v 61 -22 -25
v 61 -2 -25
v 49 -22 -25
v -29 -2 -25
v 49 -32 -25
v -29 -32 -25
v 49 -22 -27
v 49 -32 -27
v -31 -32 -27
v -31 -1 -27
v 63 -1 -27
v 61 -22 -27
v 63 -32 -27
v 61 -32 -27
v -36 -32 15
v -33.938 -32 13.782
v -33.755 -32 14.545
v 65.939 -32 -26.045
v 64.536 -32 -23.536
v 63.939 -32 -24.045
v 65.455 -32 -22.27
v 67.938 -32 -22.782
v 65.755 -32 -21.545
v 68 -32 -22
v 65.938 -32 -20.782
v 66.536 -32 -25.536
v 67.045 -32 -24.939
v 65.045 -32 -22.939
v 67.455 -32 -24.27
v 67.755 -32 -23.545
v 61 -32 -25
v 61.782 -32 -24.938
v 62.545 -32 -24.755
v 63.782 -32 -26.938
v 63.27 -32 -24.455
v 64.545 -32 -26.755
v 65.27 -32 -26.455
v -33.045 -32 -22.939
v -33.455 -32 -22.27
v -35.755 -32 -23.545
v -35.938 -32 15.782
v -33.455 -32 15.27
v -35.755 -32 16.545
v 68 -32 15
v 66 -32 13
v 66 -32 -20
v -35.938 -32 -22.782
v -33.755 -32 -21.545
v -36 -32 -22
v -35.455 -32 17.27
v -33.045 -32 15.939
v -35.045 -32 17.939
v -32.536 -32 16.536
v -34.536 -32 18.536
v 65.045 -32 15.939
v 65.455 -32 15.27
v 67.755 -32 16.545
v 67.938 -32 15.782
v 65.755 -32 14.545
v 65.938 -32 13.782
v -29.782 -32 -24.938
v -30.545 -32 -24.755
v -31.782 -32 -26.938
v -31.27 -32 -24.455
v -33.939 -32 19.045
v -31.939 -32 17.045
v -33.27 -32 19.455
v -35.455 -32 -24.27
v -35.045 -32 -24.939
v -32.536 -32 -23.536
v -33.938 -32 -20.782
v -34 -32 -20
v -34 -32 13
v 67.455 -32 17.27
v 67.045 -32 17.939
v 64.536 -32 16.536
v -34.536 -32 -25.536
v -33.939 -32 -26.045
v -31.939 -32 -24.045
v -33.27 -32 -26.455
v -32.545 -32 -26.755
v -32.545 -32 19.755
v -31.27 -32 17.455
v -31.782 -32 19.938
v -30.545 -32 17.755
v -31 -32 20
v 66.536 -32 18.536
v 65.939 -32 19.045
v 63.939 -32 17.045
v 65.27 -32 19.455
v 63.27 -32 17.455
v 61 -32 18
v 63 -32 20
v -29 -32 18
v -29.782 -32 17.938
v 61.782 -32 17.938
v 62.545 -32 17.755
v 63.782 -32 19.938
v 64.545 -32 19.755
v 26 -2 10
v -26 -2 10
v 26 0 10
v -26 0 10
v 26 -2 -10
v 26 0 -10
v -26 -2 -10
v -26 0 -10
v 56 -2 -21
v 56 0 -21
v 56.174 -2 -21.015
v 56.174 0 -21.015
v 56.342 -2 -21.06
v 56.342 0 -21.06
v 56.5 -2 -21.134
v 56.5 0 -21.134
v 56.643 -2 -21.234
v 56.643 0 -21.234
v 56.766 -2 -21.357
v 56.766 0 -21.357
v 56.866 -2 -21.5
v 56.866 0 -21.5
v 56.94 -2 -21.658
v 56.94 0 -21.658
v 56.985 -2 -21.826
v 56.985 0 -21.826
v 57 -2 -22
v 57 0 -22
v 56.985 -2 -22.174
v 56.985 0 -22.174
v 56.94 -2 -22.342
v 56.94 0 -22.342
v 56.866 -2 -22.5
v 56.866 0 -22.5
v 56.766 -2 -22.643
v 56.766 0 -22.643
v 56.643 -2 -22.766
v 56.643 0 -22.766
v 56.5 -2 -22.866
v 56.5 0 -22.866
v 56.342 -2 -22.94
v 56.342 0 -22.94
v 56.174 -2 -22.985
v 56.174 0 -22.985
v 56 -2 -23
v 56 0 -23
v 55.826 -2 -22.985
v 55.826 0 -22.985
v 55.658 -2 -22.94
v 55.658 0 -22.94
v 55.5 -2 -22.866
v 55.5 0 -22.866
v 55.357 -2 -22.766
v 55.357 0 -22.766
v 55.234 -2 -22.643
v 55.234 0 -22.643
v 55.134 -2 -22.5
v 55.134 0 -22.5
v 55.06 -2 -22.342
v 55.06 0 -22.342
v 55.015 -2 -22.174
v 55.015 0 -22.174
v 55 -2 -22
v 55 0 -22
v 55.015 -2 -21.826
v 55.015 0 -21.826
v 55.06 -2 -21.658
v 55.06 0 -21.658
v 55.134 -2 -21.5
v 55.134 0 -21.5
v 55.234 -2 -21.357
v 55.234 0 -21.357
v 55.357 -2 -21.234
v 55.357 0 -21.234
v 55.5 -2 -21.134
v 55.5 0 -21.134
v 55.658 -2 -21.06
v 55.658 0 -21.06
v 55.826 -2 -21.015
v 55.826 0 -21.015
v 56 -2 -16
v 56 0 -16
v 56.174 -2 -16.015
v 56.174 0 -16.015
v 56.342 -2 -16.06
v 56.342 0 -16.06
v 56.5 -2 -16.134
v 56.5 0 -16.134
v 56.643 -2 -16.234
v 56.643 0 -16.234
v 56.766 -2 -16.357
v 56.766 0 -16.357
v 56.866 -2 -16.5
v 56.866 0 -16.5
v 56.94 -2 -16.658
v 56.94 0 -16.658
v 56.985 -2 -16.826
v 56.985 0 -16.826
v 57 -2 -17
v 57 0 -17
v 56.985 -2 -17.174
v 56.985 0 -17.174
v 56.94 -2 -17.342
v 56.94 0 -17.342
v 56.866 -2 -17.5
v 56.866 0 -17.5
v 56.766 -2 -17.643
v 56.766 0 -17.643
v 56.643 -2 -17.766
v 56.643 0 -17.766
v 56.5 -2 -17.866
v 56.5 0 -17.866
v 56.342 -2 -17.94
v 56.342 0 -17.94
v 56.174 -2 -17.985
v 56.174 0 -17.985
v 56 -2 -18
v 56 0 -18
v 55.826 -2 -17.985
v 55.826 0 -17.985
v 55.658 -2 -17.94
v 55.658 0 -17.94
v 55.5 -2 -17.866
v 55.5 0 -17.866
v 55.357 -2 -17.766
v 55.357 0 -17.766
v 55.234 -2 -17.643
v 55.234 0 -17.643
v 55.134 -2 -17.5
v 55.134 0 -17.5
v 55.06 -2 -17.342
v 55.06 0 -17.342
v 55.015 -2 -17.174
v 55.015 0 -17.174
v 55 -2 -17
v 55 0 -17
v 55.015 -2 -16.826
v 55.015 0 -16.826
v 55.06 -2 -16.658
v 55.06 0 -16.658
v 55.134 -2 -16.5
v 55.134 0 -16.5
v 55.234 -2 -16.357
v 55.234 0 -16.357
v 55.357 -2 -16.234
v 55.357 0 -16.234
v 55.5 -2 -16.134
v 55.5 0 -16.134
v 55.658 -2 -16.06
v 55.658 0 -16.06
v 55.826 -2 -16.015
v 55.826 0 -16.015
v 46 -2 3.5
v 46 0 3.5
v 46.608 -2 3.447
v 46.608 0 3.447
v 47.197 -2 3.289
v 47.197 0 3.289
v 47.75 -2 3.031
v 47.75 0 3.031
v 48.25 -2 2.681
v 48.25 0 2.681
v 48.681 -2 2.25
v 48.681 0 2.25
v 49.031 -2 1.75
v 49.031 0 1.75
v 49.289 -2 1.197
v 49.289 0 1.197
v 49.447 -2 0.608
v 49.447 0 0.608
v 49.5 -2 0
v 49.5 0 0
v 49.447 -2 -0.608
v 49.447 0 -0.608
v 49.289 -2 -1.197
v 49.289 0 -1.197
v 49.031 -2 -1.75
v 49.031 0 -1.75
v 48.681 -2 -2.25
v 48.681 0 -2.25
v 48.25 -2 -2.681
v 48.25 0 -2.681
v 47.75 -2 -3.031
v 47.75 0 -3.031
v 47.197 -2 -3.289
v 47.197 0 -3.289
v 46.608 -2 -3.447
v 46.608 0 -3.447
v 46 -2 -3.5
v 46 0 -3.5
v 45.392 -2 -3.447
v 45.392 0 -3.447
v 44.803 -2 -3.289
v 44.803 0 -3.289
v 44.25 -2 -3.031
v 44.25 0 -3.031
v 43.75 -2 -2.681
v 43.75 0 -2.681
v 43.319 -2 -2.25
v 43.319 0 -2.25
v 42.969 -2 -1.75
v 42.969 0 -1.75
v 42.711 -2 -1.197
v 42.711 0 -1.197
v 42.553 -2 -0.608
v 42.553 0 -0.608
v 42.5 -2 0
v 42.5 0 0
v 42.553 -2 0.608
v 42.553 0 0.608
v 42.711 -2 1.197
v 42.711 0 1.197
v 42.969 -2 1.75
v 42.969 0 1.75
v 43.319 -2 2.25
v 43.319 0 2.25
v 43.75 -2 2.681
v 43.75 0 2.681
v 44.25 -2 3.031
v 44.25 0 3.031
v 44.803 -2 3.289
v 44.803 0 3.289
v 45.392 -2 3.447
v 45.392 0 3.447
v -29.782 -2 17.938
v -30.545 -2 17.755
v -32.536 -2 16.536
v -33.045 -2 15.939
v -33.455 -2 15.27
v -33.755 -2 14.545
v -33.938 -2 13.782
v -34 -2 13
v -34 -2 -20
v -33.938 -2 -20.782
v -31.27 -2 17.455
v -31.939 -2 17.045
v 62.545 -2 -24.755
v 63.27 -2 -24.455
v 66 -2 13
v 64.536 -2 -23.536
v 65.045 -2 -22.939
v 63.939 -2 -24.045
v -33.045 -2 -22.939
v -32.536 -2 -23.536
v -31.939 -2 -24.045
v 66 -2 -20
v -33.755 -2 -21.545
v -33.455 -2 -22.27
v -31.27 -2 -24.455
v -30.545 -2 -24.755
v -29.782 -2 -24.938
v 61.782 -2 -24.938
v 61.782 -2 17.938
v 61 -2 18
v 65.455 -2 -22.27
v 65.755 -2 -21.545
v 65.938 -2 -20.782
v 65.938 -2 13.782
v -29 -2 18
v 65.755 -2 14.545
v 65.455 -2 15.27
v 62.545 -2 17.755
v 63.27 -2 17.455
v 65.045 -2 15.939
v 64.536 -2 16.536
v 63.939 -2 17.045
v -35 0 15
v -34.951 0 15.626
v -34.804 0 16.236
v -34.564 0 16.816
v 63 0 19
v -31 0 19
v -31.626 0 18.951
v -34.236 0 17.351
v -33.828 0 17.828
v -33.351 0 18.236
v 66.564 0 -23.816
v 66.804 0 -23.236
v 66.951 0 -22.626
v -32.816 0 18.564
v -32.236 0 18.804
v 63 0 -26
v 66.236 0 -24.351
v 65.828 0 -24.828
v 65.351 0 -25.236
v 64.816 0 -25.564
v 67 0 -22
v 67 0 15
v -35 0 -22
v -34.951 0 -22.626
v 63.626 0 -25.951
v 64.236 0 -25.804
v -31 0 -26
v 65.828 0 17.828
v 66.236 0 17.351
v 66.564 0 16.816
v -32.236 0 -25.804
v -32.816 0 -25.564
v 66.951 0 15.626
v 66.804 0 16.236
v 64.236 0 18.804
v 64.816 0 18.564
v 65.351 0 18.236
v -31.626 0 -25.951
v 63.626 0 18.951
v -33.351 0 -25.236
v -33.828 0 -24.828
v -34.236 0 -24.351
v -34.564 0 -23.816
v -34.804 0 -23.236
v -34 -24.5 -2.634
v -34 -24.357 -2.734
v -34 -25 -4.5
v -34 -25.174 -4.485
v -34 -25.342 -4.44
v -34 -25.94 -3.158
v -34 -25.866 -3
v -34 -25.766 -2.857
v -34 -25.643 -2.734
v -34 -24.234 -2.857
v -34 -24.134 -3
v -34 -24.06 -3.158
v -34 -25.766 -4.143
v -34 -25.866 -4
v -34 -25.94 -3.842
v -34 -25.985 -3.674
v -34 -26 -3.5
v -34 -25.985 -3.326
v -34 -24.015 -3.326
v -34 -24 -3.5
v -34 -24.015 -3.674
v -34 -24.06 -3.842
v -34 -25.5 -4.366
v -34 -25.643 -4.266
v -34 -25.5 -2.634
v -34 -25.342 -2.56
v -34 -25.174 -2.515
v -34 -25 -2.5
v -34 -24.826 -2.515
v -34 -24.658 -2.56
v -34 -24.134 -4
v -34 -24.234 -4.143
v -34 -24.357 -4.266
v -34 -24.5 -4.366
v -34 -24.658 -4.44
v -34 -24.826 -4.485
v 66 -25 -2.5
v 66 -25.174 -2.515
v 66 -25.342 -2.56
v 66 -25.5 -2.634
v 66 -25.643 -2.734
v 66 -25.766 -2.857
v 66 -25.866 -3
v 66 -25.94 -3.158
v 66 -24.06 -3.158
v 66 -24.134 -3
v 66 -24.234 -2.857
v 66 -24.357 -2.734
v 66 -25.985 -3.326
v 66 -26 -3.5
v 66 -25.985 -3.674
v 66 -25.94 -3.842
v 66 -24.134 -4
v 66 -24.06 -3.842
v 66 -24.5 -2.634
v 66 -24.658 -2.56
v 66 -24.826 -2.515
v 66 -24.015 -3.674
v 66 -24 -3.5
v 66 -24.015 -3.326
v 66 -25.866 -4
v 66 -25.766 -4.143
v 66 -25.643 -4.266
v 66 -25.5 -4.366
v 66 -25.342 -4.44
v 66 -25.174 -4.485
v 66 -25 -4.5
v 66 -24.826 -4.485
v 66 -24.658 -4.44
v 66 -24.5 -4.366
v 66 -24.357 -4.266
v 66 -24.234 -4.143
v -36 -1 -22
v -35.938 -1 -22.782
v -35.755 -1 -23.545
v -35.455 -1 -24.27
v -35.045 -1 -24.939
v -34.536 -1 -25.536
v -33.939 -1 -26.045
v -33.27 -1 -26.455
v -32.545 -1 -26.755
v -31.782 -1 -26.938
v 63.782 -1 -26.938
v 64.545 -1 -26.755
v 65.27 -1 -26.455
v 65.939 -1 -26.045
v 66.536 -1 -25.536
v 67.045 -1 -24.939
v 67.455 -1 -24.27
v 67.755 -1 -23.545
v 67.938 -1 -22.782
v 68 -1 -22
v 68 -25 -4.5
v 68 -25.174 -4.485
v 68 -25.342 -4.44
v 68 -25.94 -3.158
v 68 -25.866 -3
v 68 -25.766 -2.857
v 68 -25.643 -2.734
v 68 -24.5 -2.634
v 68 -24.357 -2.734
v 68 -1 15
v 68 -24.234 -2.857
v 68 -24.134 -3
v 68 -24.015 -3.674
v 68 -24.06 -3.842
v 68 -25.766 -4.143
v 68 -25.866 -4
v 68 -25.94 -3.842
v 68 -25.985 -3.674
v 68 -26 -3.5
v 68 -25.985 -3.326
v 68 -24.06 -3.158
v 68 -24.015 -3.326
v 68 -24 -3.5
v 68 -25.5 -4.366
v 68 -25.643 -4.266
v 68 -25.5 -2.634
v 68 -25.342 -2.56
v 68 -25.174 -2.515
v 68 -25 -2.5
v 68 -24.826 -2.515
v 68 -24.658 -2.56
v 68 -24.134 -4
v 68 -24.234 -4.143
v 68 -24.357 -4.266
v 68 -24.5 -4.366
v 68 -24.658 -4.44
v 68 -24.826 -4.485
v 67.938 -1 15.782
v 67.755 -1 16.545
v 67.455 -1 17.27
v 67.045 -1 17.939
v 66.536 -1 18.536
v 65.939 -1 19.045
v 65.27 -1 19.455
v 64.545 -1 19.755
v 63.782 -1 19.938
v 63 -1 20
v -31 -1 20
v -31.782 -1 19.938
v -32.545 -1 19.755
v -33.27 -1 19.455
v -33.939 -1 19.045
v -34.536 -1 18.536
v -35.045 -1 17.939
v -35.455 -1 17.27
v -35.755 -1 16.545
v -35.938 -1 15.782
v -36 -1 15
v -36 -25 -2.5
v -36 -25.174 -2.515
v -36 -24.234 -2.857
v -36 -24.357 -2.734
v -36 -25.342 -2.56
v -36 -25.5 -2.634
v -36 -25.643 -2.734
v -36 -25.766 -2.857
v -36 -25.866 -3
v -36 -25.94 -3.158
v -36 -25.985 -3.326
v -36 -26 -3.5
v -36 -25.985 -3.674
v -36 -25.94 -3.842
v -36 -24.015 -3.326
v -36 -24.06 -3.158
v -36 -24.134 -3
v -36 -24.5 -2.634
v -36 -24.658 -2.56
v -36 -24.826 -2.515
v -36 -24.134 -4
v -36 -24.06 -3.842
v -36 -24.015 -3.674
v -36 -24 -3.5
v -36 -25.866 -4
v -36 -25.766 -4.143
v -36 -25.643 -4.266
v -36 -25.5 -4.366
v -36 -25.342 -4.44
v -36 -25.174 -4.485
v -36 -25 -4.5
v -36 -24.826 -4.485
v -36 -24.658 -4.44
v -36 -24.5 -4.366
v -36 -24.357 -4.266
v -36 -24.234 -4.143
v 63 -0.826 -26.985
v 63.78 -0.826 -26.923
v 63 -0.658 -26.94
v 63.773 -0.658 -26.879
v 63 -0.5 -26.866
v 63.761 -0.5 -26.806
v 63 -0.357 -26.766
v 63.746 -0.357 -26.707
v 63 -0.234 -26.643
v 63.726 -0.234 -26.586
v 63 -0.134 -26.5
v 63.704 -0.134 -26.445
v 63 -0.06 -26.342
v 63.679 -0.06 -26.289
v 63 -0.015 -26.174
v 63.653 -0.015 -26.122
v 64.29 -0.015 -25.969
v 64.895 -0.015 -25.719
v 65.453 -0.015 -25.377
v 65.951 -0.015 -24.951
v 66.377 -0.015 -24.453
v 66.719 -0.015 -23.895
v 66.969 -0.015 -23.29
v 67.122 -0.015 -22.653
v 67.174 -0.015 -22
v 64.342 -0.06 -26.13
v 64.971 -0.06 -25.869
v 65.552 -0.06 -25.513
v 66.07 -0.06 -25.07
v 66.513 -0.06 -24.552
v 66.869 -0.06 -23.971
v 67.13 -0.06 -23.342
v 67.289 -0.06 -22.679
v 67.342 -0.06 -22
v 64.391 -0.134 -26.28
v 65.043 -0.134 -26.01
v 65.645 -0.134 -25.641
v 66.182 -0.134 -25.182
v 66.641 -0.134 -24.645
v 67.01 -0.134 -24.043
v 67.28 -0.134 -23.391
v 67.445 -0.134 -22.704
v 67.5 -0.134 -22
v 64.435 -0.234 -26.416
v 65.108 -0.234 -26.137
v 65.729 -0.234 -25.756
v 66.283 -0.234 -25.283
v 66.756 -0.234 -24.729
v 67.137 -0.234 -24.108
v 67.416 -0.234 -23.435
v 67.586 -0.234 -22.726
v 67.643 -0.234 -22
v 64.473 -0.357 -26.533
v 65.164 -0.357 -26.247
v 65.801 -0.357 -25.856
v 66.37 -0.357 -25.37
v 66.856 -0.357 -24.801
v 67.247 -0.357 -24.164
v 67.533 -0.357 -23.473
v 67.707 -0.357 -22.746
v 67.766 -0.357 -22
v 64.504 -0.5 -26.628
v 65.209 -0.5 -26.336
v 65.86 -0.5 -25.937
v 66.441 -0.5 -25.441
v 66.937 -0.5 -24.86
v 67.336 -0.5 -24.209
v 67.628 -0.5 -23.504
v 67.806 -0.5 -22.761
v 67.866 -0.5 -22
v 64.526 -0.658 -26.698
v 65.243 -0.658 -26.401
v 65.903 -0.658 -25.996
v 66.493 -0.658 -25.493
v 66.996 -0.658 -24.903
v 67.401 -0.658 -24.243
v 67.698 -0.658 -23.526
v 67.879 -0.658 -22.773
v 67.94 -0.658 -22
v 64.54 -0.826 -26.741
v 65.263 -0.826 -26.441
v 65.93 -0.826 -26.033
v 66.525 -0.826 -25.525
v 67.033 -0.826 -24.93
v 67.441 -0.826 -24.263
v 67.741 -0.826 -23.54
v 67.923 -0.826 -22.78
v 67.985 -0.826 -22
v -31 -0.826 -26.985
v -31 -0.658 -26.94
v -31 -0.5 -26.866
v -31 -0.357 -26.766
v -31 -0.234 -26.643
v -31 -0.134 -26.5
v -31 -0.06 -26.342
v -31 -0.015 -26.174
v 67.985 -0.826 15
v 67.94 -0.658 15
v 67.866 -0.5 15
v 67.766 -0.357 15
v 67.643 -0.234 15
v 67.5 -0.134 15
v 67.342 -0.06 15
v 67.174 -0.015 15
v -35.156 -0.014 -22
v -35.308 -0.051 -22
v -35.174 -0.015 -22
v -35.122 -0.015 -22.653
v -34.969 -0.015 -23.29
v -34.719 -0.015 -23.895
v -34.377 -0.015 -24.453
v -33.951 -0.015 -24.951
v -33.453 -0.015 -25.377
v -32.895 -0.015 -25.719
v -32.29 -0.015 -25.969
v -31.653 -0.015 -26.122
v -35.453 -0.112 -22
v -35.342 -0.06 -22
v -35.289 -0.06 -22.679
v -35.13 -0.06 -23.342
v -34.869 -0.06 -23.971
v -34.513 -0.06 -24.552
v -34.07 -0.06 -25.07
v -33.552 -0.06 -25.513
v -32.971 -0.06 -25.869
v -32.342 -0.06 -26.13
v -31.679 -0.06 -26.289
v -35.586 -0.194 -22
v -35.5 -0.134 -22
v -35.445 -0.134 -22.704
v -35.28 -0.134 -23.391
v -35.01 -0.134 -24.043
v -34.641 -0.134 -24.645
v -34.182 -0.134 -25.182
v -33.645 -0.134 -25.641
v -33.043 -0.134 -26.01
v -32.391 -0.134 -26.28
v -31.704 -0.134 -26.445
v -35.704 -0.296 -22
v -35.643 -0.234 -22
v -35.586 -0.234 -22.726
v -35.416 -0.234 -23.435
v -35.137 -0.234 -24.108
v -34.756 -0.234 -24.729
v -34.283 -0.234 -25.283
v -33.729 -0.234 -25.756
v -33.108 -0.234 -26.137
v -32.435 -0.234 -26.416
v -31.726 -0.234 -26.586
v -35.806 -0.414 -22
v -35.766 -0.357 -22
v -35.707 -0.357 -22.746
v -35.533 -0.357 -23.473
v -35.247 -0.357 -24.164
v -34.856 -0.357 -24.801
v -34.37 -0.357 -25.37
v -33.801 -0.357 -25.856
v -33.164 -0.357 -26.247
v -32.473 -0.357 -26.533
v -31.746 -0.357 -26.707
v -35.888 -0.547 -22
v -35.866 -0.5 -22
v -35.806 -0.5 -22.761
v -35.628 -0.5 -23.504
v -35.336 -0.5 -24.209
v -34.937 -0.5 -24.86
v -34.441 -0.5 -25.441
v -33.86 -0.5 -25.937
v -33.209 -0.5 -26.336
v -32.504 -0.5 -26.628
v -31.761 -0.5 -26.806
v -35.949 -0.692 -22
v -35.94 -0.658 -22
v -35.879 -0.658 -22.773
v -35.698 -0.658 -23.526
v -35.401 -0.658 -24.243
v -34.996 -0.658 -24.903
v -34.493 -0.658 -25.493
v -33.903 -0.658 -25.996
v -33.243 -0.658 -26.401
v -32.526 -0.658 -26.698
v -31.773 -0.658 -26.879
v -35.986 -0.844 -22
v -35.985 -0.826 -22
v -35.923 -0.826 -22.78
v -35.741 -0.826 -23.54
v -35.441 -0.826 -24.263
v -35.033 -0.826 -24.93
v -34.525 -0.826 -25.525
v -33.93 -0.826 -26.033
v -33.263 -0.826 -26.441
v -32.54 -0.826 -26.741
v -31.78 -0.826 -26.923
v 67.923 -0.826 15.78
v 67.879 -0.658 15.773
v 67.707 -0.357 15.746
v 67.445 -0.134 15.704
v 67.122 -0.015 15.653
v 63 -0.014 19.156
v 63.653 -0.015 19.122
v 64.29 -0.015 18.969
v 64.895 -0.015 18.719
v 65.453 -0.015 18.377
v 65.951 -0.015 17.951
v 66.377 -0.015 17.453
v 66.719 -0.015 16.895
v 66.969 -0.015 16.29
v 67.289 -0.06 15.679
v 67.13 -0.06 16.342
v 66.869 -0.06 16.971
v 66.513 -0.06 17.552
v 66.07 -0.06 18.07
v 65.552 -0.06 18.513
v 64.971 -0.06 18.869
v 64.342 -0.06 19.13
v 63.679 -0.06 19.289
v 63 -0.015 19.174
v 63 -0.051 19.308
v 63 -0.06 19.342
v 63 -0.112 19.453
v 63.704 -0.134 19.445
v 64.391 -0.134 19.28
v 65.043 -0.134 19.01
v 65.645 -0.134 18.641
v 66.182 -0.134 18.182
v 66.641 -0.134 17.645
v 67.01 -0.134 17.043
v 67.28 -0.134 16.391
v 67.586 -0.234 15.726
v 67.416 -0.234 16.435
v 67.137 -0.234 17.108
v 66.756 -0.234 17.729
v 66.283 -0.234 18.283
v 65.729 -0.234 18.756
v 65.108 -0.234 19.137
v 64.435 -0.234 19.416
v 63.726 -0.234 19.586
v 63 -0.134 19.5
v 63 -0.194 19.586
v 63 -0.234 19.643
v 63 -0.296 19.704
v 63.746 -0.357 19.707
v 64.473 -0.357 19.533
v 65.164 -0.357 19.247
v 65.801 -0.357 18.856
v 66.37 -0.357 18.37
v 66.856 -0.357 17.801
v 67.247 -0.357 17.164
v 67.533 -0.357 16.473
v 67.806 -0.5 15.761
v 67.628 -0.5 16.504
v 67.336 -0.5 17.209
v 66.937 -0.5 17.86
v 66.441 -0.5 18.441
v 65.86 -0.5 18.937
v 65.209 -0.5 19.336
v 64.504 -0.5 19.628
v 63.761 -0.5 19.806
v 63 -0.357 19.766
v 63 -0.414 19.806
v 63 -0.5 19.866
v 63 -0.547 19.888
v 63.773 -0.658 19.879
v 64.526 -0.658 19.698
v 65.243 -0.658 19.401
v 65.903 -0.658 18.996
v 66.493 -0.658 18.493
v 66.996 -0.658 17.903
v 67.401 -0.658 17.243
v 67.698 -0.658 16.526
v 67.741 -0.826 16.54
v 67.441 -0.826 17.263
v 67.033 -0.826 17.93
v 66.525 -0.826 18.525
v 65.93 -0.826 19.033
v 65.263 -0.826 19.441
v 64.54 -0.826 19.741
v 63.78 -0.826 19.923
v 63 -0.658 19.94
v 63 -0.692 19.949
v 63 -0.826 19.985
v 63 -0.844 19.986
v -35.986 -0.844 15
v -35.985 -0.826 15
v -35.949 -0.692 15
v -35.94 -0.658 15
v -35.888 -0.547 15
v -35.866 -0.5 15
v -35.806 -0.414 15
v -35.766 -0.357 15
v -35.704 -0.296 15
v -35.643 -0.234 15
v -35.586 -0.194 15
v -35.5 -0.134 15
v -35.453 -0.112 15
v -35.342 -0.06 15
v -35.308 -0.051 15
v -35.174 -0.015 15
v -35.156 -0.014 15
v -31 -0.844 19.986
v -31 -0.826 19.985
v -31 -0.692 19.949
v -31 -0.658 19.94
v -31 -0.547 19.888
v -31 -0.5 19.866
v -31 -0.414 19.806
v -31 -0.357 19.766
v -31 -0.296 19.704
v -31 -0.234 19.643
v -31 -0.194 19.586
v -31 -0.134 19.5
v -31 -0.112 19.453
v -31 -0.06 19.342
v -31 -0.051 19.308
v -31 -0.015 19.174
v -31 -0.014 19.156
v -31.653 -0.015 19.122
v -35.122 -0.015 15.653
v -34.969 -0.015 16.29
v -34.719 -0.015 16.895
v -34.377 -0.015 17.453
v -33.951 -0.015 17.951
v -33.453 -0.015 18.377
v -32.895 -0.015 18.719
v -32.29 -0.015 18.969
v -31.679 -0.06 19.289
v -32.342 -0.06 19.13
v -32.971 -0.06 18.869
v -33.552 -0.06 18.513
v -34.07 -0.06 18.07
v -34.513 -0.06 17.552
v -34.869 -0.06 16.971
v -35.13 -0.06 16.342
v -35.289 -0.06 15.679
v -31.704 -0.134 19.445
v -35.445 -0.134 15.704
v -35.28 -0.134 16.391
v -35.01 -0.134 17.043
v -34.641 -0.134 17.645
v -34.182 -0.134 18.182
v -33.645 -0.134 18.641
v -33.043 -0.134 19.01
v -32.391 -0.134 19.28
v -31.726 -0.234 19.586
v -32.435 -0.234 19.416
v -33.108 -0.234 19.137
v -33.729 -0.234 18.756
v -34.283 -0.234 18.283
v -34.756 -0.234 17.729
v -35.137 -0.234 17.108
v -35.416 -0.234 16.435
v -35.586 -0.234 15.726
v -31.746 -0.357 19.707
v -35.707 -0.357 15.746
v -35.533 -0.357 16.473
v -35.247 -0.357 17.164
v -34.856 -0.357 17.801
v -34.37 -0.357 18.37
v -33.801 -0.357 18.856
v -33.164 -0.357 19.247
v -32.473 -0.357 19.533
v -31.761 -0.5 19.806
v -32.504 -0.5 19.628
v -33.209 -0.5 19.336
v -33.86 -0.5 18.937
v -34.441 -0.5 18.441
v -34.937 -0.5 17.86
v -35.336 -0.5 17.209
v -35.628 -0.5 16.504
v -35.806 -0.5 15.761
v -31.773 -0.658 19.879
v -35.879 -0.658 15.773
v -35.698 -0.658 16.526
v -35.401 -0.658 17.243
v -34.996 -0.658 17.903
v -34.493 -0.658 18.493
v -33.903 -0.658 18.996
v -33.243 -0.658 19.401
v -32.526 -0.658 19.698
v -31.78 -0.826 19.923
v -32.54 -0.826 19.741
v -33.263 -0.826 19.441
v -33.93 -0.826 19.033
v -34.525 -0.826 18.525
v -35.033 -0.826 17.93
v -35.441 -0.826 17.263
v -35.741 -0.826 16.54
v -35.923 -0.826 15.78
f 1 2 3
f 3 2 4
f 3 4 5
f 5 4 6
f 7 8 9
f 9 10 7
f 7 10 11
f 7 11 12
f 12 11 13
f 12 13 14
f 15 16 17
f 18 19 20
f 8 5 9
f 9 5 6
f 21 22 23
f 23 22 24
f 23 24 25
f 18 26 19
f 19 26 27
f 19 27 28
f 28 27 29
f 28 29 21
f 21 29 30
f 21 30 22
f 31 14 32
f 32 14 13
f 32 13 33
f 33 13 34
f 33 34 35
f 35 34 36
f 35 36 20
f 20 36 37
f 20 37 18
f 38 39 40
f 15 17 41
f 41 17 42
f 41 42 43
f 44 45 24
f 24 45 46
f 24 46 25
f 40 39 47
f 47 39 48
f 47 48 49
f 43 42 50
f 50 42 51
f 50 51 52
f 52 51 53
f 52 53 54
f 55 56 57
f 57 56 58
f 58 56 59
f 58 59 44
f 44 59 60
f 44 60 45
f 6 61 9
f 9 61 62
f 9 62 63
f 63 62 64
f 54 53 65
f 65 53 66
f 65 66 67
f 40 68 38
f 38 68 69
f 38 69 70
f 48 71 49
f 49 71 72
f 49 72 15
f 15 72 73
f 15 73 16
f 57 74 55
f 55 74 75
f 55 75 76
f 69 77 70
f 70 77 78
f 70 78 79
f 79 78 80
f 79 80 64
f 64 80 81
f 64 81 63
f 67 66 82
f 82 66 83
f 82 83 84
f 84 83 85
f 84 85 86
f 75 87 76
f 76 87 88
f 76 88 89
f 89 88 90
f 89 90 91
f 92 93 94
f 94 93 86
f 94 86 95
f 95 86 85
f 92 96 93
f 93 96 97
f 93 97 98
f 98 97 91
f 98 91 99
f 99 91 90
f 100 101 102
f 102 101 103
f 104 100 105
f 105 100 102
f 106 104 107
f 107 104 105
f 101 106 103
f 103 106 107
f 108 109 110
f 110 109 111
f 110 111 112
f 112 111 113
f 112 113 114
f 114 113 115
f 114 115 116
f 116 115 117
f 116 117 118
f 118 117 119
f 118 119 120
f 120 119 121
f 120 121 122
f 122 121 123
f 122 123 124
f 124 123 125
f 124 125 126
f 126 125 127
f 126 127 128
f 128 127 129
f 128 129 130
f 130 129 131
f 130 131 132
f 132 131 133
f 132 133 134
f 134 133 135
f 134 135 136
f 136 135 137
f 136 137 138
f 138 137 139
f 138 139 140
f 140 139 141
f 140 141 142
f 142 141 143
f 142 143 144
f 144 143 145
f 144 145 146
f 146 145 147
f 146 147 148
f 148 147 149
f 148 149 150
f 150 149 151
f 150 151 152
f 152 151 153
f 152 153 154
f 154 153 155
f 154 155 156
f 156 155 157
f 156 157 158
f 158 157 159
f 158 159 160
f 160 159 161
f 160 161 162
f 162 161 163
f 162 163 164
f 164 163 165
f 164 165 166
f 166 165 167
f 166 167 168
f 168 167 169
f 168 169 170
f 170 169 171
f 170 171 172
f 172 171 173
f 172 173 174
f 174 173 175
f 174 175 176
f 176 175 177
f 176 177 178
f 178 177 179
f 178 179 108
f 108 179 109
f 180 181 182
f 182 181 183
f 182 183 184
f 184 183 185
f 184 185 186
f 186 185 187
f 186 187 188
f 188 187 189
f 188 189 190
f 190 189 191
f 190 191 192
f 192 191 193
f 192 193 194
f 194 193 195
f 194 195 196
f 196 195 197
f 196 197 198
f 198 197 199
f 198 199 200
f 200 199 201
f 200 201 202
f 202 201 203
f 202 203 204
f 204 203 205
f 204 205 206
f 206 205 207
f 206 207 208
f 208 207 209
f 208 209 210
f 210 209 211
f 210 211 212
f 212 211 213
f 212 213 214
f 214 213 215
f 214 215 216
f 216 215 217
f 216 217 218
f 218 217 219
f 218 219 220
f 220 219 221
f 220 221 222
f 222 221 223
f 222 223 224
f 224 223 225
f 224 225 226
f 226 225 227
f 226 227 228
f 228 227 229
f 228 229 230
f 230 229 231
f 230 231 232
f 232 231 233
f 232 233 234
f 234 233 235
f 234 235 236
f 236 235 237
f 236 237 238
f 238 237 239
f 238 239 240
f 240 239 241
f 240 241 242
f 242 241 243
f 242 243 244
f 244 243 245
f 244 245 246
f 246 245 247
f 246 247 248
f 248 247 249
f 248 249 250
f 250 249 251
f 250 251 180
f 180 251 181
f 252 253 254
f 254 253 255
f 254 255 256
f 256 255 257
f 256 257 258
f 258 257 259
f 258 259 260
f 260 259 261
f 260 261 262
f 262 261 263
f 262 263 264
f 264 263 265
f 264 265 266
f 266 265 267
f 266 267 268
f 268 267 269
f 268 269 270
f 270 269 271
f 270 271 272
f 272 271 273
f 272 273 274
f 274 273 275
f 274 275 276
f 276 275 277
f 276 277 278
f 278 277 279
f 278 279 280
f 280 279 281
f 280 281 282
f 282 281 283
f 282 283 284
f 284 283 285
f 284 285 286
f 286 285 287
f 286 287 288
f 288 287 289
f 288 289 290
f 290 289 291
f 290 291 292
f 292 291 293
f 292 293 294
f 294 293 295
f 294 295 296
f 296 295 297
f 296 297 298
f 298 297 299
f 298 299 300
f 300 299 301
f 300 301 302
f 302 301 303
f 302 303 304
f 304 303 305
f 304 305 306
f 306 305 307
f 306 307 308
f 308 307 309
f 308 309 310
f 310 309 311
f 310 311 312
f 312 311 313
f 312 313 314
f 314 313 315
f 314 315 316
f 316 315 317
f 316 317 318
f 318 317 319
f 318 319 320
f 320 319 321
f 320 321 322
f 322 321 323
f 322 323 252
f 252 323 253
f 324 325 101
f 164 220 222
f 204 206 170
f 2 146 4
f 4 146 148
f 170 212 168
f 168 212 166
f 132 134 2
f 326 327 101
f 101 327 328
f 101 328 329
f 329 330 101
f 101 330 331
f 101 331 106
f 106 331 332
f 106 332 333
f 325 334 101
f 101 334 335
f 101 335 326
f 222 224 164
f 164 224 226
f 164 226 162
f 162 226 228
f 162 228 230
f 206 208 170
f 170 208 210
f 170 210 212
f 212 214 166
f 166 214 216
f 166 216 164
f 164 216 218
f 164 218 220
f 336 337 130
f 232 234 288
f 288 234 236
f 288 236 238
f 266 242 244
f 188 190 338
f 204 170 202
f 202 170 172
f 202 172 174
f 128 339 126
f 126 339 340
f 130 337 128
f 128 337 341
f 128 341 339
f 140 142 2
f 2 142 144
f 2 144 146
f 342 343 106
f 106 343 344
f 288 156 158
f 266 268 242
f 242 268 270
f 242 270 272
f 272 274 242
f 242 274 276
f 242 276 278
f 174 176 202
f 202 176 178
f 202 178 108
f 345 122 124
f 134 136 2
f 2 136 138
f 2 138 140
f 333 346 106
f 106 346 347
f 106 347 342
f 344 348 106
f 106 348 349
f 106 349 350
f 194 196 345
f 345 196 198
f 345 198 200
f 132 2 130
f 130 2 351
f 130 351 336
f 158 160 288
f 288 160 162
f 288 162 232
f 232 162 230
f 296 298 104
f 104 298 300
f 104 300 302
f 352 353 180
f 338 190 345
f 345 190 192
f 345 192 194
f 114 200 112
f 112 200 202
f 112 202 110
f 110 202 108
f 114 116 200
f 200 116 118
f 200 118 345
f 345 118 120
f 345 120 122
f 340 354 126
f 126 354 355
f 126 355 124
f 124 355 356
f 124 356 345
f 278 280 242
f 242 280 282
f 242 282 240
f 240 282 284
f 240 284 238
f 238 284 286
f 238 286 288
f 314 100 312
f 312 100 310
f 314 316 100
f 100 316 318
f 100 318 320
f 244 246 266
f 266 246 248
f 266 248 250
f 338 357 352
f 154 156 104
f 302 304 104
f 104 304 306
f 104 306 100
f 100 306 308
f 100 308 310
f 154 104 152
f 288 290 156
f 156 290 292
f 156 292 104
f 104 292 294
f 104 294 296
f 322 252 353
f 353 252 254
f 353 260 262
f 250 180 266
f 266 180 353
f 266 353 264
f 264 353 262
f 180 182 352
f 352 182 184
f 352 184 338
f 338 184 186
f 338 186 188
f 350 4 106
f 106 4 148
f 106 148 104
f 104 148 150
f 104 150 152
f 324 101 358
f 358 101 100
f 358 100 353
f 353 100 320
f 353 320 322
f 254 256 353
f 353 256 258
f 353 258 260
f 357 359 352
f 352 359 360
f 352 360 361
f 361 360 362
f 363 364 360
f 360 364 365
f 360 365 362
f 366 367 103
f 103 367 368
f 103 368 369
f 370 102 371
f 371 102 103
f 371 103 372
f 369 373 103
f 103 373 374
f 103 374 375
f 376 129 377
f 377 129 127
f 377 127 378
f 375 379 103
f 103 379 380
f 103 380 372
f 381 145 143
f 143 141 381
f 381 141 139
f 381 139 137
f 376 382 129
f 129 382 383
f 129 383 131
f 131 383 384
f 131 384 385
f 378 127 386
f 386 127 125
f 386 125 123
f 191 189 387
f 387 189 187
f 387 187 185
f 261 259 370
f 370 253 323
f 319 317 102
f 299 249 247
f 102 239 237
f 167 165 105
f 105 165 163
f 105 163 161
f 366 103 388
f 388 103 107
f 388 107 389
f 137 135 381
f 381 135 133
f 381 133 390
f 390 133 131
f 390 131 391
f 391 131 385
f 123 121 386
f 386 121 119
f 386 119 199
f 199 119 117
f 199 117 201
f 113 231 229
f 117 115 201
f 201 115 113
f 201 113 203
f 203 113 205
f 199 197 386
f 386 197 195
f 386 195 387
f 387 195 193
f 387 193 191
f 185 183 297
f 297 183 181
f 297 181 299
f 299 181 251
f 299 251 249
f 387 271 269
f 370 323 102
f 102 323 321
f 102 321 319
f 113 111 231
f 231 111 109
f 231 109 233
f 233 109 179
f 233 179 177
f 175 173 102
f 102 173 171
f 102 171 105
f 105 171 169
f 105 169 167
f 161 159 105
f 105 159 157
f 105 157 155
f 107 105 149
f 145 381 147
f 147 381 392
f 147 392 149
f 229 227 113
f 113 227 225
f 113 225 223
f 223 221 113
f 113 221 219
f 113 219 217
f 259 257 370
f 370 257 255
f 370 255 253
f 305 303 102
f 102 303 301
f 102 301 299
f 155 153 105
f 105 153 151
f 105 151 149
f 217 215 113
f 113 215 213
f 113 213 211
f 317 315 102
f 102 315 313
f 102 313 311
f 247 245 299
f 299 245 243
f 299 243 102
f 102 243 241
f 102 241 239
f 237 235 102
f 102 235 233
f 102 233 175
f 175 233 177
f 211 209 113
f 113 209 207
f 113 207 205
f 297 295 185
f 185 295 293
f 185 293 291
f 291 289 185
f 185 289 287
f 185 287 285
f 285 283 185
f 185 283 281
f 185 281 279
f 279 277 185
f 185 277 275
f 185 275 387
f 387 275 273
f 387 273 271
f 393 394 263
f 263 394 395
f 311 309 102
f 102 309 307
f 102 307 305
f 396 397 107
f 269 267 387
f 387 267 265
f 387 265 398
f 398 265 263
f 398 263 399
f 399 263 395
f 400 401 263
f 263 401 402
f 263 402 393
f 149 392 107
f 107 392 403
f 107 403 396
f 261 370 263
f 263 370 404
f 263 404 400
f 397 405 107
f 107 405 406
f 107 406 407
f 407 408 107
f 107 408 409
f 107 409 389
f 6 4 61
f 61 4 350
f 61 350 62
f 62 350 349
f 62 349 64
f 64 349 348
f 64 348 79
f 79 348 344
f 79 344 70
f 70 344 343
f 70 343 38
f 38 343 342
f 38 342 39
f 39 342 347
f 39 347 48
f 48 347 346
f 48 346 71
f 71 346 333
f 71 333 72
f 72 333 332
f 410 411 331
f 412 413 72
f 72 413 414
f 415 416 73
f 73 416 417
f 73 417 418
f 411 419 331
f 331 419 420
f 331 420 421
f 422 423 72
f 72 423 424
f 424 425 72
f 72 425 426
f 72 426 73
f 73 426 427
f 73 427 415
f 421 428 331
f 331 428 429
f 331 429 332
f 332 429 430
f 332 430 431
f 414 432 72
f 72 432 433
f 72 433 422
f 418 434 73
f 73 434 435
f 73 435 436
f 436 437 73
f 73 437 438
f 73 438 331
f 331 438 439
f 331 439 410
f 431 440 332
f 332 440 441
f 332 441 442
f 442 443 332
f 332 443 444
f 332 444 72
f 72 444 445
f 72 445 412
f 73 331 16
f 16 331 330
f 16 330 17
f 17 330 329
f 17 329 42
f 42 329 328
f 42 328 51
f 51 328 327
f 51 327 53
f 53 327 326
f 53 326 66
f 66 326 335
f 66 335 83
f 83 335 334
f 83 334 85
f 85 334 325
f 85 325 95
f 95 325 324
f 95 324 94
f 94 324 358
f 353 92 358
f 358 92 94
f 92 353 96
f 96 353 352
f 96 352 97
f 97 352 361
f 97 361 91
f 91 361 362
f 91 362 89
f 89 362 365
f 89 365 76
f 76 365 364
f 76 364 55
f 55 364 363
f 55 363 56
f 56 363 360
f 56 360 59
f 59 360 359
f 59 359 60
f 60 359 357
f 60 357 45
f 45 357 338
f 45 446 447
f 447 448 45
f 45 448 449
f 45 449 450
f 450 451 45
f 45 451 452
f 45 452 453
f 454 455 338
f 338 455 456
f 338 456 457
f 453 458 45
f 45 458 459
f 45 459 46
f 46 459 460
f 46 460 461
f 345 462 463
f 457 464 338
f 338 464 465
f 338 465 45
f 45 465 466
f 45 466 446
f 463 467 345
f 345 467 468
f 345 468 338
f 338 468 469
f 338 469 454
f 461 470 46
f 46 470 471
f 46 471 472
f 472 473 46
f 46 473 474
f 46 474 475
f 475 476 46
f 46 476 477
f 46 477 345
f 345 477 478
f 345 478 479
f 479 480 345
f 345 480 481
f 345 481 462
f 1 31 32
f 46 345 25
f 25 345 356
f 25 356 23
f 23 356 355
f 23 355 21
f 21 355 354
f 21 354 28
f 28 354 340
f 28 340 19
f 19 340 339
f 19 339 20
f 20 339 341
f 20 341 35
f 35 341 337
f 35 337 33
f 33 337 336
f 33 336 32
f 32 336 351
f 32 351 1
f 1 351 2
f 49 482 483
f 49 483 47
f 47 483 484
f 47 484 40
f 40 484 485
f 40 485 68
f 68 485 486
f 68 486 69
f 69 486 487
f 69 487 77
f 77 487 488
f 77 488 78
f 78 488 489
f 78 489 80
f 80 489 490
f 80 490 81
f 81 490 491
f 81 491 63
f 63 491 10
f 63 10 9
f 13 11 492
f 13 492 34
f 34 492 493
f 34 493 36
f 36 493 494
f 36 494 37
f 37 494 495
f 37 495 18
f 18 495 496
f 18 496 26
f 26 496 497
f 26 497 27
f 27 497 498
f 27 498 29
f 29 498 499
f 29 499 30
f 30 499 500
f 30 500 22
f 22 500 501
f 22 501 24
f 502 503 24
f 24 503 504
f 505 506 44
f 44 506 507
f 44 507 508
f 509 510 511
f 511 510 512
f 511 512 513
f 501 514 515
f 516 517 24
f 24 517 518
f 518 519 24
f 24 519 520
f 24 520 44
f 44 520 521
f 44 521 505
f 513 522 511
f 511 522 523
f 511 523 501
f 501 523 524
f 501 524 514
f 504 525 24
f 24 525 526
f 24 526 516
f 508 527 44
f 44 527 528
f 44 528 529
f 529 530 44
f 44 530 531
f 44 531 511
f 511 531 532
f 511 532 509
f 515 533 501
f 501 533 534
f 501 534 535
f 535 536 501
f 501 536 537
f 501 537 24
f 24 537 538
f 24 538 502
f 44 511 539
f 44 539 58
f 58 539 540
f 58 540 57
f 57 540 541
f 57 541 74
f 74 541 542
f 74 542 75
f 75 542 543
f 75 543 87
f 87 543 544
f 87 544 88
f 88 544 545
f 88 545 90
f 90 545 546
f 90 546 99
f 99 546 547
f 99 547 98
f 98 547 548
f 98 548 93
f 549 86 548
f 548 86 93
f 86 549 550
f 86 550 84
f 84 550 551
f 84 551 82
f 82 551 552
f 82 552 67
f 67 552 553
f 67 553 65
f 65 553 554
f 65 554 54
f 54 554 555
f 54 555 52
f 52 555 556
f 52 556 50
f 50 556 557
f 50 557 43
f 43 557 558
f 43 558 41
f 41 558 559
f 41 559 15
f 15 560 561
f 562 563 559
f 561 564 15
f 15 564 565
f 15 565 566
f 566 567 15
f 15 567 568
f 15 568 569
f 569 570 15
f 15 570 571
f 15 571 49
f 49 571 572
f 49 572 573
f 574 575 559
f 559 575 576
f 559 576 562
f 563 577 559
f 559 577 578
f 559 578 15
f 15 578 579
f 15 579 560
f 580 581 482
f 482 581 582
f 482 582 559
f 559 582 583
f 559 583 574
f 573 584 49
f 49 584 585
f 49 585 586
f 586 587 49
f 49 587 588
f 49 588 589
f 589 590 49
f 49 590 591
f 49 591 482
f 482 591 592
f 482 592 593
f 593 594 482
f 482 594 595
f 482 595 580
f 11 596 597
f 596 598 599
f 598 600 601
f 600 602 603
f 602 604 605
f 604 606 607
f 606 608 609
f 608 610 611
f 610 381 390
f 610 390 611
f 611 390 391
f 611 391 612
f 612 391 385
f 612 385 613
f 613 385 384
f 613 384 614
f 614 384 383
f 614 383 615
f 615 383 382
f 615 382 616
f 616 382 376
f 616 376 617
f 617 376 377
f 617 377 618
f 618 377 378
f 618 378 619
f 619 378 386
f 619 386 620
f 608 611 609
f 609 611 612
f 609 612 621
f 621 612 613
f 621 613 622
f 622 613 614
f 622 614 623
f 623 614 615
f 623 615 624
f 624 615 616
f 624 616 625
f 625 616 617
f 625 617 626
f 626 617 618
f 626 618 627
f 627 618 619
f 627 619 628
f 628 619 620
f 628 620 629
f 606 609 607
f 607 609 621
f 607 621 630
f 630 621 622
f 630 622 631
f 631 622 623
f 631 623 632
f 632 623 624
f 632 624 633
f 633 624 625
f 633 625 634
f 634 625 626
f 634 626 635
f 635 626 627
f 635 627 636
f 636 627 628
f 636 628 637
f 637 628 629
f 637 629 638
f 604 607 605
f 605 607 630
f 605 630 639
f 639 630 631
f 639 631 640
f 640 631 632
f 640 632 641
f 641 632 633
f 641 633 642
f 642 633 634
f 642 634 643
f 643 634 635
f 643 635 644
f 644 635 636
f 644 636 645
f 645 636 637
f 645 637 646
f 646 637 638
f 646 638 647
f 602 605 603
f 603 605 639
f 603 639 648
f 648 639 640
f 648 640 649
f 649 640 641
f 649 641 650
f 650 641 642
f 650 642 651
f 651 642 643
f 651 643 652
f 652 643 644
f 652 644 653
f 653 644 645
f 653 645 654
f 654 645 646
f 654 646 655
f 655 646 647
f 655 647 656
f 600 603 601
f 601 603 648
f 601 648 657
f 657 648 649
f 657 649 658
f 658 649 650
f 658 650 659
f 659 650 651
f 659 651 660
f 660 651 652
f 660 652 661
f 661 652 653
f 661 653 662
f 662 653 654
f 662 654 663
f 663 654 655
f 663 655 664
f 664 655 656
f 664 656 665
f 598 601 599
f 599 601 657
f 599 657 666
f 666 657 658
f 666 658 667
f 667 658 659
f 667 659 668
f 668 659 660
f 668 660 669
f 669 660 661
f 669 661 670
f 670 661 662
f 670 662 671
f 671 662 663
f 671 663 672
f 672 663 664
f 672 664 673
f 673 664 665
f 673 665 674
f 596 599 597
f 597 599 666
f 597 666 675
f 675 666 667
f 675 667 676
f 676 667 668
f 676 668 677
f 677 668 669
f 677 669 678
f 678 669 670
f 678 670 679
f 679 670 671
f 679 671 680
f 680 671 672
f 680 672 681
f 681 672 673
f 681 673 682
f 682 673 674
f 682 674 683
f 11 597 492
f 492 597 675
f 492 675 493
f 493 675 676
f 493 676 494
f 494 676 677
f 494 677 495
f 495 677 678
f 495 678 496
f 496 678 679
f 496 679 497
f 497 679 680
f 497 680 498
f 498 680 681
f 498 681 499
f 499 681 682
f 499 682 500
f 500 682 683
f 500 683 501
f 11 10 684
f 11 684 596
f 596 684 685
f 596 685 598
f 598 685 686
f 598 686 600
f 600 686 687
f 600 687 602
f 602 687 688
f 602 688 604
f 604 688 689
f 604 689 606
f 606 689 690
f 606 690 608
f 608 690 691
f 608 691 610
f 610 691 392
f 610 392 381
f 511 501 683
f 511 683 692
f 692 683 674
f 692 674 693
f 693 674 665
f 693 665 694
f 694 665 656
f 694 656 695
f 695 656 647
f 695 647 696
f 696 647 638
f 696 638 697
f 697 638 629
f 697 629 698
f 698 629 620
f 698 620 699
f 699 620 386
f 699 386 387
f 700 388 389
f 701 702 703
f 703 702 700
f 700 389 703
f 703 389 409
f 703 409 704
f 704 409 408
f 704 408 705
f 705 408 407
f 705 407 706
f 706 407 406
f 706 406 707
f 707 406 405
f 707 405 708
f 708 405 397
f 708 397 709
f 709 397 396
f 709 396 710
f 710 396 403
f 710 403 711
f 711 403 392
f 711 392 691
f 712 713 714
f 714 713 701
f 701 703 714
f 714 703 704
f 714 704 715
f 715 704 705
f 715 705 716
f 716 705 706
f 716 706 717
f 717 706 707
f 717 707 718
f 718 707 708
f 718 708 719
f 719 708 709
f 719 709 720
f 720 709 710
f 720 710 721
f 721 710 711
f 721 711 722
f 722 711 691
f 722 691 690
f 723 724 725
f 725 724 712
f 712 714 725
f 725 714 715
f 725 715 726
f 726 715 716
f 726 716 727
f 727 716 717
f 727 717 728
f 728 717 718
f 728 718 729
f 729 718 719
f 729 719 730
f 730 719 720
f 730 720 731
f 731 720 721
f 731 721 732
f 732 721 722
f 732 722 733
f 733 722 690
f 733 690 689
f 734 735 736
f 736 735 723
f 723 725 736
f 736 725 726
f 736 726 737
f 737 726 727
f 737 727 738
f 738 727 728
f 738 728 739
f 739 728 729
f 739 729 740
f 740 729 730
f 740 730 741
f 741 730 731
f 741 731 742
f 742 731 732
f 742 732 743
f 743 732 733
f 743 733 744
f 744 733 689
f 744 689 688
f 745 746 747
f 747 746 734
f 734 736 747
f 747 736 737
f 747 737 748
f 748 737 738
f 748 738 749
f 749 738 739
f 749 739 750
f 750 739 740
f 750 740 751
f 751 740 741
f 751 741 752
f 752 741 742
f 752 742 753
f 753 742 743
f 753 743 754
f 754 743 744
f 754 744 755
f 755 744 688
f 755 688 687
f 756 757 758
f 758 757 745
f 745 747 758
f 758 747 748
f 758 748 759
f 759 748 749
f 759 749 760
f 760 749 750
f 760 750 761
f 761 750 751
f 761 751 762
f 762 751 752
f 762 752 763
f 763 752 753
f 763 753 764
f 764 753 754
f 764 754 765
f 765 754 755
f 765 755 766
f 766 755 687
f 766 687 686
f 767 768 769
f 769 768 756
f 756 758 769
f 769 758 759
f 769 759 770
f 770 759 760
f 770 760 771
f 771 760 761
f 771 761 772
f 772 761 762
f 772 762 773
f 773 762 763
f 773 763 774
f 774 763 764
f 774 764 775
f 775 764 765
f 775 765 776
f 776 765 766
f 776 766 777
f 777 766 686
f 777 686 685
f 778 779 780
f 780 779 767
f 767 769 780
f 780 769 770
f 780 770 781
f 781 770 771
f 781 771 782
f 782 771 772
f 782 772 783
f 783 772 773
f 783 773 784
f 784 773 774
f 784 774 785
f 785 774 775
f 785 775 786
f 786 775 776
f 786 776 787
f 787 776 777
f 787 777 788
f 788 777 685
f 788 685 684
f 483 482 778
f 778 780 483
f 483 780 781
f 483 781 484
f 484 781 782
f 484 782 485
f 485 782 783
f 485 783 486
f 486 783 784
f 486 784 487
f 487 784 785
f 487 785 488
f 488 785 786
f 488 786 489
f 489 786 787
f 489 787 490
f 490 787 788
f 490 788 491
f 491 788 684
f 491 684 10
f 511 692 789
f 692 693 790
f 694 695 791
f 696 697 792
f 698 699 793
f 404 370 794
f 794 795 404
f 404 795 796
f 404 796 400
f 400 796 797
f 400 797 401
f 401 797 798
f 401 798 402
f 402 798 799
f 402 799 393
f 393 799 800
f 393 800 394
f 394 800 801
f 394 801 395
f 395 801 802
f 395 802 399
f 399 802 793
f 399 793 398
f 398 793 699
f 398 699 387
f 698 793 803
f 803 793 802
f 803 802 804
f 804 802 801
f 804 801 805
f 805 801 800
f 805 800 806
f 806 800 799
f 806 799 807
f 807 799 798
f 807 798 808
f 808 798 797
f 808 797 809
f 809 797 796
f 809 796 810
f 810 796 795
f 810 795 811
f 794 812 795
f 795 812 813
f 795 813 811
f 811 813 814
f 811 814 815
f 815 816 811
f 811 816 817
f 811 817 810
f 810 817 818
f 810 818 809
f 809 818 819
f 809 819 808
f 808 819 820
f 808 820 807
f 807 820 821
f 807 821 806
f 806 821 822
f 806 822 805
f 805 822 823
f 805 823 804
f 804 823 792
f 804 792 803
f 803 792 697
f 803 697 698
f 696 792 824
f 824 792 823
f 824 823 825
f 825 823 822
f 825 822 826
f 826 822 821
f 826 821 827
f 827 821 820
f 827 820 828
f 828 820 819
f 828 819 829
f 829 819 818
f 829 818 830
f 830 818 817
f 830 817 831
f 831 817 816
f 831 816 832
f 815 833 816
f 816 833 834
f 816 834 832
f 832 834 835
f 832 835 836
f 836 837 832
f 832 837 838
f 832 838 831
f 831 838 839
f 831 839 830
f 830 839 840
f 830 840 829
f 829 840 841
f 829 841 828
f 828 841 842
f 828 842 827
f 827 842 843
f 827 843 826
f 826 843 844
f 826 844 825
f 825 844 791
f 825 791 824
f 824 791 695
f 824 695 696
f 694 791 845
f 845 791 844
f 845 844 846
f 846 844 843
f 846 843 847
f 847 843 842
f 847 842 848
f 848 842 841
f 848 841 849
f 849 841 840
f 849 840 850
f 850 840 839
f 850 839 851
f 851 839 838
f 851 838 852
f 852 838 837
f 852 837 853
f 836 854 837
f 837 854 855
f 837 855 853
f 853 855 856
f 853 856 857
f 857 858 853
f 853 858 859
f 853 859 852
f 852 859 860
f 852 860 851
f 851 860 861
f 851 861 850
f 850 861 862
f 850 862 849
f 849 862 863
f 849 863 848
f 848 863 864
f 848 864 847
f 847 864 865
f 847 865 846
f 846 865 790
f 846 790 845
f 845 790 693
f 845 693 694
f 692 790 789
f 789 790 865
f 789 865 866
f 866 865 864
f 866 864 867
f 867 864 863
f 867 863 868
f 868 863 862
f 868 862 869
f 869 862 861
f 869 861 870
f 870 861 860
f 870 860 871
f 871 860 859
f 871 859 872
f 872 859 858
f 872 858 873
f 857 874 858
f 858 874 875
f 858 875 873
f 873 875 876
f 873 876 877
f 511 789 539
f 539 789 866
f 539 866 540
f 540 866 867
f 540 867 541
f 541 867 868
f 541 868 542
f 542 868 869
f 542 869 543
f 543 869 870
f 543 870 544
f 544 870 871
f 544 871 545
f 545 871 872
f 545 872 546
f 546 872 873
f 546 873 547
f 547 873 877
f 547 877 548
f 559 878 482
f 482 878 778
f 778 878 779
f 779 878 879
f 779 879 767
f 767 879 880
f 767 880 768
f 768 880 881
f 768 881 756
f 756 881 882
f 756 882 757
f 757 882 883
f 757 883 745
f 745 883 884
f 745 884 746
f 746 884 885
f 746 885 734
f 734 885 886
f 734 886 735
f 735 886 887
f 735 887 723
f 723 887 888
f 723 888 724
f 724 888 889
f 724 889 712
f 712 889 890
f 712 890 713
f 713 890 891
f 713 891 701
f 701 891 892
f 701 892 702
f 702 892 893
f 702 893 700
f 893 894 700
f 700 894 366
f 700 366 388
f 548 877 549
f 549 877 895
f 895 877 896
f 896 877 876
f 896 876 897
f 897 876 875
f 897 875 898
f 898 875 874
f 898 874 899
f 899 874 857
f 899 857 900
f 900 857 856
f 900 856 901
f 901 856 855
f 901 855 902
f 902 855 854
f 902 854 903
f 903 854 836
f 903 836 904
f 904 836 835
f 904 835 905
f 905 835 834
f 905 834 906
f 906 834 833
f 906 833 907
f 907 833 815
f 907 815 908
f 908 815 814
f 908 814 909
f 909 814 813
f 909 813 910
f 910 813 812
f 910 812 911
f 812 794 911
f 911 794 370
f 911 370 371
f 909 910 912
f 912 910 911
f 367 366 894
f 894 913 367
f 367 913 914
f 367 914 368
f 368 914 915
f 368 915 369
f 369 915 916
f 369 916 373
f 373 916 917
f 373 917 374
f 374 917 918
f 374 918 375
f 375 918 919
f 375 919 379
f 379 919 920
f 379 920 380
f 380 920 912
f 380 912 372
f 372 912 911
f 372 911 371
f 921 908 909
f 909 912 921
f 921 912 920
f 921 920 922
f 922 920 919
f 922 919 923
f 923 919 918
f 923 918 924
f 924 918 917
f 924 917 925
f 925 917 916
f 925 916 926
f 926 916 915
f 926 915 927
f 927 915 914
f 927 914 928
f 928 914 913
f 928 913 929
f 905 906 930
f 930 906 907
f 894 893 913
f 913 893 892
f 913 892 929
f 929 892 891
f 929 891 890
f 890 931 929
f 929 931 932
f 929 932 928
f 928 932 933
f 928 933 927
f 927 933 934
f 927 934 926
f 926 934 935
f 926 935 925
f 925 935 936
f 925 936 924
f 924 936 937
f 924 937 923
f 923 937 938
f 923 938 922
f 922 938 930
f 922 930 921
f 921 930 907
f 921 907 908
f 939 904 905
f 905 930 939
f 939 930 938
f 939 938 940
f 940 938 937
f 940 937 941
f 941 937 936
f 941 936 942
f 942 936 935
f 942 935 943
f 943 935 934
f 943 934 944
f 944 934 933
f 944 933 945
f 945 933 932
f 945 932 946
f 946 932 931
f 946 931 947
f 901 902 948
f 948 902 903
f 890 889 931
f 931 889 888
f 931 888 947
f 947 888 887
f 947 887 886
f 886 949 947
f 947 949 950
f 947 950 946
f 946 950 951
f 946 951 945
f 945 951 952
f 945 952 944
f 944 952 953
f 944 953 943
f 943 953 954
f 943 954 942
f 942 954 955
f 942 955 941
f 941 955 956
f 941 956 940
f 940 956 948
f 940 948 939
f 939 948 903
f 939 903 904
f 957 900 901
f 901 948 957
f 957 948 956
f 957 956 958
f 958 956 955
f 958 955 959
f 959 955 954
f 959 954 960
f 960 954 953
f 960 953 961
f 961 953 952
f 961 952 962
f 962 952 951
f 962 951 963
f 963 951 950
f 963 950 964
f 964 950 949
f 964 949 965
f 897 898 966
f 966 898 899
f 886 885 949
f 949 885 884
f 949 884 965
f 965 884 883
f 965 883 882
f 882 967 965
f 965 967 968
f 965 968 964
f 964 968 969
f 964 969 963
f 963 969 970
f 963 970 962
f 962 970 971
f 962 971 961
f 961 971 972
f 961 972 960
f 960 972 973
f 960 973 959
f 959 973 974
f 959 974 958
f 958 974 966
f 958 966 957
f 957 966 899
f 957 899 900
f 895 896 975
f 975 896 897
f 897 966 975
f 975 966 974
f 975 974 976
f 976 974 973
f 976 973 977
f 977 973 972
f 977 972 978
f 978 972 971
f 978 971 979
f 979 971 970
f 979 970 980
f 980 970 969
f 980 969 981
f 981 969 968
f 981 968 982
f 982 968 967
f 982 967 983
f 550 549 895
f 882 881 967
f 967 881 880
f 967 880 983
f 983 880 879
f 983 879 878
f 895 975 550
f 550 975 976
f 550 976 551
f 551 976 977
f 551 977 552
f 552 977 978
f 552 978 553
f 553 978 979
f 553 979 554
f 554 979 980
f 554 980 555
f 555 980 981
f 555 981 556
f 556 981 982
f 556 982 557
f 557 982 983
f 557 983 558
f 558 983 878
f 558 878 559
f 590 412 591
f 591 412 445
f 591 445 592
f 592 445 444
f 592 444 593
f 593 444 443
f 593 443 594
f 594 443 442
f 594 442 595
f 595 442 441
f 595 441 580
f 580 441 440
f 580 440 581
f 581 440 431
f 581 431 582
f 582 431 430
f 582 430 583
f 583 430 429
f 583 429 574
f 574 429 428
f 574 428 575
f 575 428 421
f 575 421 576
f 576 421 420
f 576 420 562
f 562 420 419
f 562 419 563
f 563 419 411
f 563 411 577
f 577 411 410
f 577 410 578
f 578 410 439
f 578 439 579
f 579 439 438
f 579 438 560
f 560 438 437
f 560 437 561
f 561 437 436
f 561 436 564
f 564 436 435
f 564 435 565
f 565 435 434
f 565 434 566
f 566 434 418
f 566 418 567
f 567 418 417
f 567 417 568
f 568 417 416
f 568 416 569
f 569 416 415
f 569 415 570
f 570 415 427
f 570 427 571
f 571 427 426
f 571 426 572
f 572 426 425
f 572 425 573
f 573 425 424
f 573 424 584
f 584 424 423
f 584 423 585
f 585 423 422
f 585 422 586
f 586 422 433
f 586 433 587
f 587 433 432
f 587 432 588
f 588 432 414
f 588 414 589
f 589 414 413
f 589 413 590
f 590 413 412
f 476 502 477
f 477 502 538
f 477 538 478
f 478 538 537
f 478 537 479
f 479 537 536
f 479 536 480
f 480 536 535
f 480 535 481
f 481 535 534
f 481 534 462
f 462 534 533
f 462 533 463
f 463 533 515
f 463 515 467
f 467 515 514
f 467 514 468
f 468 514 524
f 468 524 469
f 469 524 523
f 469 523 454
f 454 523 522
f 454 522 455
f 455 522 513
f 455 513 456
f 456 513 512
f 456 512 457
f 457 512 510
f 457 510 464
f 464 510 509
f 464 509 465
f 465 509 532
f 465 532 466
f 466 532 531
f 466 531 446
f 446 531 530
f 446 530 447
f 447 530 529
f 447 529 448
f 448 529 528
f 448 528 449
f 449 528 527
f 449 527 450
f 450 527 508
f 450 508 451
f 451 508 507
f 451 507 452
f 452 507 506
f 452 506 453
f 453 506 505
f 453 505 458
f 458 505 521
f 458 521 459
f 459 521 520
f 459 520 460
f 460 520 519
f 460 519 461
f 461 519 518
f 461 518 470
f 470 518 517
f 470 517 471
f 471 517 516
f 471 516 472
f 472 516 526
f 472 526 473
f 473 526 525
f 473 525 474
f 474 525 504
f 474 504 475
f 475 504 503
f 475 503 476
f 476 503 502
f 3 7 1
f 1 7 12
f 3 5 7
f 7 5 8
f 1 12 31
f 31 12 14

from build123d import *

# Parameters (mm, degrees)
SKETCH_1_R               = 3.5
SKETCH_1_R_2             = 1
SKETCH_1_W               = 52
SKETCH_1_H               = 20
EXTRUDE_1_DEPTH          = 2
EXTRUDE_2_DEPTH          = 32
FILLET_2_R               = 1
SKETCH_2_R               = 1
CUT_EXTRUDE_1_DEPTH      = 1
CUT_EXTRUDE_1_DEPTH_BACK = 105
SKETCH_3_W               = 12
SKETCH_3_H               = 10
CUT_EXTRUDE_2_DEPTH      = 10


with BuildPart() as part:
    # Эскиз1 → Бобышка-Вытянуть1 (new body)
    with BuildSketch(Plane(origin=(0, 0, 0), x_dir=(1, 0, 0), z_dir=(0, 1, 0))):
        with BuildLine():
            Line((-29, 25), (61, 25))
            ThreePointArc((61, 25), (64.535533906, 23.535533906), (66, 20))
            Line((66, 20), (66, -13))
            ThreePointArc((66, -13), (64.535533906, -16.535533906), (61, -18))
            Line((61, -18), (-29, -18))
            ThreePointArc((-29, -18), (-32.535533906, -16.535533906), (-34, -13))
            Line((-34, -13), (-34, 20))
            ThreePointArc((-34, 20), (-32.535533906, 23.535533906), (-29, 25))
        make_face()
        with Locations((46, 0)):
            Circle(SKETCH_1_R, mode=Mode.SUBTRACT)
        with Locations((56, 22)):
            Circle(SKETCH_1_R_2, mode=Mode.SUBTRACT)
        with Locations((56, 17)):
            Circle(SKETCH_1_R_2, mode=Mode.SUBTRACT)
        Rectangle(SKETCH_1_W, SKETCH_1_H, mode=Mode.SUBTRACT)
    extrude(amount=-EXTRUDE_1_DEPTH)

    # Эскиз1<3> → Бобышка-Вытянуть2 (add)
    with BuildSketch(Plane(origin=(0, 0, 0), x_dir=(1, 0, 0), z_dir=(0, 1, 0))):
        with BuildLine():
            Line((-31, 27), (63, 27))
            ThreePointArc((63, 27), (66.535533906, 25.535533906), (68, 22))
            Line((68, 22), (68, -15))
            ThreePointArc((68, -15), (66.535533906, -18.535533906), (63, -20))
            Line((63, -20), (-31, -20))
            ThreePointArc((-31, -20), (-34.535533906, -18.535533906), (-36, -15))
            Line((-36, -15), (-36, 22))
            ThreePointArc((-36, 22), (-34.535533906, 25.535533906), (-31, 27))
        make_face()
        with BuildLine():
            Line((-29, 25), (61, 25))
            ThreePointArc((61, 25), (64.535533906, 23.535533906), (66, 20))
            Line((66, 20), (66, -13))
            ThreePointArc((66, -13), (64.535533906, -16.535533906), (61, -18))
            Line((61, -18), (-29, -18))
            ThreePointArc((-29, -18), (-32.535533906, -16.535533906), (-34, -13))
            Line((-34, -13), (-34, 20))
            ThreePointArc((-34, 20), (-32.535533906, 23.535533906), (-29, 25))
        make_face(mode=Mode.SUBTRACT)
    extrude(amount=-EXTRUDE_2_DEPTH)

    # Скругление2
    fillet_2_edges = [part.edges().sort_by_distance(p)[0] for p in [
        (-34.535533906, 0, -25.535533906),
        (16, 0, -27),
        (68, 0, -3.5),
        (66.535533906, 0, 18.535533906),
        (-36, 0, -3.5),
        (-34.535533906, 0, 18.535533906),
        (16, 0, 20),
        (66.535533906, 0, -25.535533906),
    ]]
    fillet(fillet_2_edges, radius=FILLET_2_R)

    # Эскиз2 → Вырез-Вытянуть1 (cut, two sides)
    with BuildSketch(Plane(origin=(68, 0, 0), x_dir=(0, 0, -1), z_dir=(1, 0, 0))) as cut_extrude_1_sk:
        with Locations((3.5, -25)):
            Circle(SKETCH_2_R)
    extrude(amount=CUT_EXTRUDE_1_DEPTH, mode=Mode.SUBTRACT)
    extrude(cut_extrude_1_sk.sketch, amount=-CUT_EXTRUDE_1_DEPTH_BACK, mode=Mode.SUBTRACT)

    # Эскиз3 → Вырез-Вытянуть2 (cut)
    with BuildSketch(Plane.XY.offset(-25)):
        with Locations((55, -27)):
            Rectangle(SKETCH_3_W, SKETCH_3_H)
    extrude(amount=-CUT_EXTRUDE_2_DEPTH, mode=Mode.SUBTRACT)


solid = part.part
